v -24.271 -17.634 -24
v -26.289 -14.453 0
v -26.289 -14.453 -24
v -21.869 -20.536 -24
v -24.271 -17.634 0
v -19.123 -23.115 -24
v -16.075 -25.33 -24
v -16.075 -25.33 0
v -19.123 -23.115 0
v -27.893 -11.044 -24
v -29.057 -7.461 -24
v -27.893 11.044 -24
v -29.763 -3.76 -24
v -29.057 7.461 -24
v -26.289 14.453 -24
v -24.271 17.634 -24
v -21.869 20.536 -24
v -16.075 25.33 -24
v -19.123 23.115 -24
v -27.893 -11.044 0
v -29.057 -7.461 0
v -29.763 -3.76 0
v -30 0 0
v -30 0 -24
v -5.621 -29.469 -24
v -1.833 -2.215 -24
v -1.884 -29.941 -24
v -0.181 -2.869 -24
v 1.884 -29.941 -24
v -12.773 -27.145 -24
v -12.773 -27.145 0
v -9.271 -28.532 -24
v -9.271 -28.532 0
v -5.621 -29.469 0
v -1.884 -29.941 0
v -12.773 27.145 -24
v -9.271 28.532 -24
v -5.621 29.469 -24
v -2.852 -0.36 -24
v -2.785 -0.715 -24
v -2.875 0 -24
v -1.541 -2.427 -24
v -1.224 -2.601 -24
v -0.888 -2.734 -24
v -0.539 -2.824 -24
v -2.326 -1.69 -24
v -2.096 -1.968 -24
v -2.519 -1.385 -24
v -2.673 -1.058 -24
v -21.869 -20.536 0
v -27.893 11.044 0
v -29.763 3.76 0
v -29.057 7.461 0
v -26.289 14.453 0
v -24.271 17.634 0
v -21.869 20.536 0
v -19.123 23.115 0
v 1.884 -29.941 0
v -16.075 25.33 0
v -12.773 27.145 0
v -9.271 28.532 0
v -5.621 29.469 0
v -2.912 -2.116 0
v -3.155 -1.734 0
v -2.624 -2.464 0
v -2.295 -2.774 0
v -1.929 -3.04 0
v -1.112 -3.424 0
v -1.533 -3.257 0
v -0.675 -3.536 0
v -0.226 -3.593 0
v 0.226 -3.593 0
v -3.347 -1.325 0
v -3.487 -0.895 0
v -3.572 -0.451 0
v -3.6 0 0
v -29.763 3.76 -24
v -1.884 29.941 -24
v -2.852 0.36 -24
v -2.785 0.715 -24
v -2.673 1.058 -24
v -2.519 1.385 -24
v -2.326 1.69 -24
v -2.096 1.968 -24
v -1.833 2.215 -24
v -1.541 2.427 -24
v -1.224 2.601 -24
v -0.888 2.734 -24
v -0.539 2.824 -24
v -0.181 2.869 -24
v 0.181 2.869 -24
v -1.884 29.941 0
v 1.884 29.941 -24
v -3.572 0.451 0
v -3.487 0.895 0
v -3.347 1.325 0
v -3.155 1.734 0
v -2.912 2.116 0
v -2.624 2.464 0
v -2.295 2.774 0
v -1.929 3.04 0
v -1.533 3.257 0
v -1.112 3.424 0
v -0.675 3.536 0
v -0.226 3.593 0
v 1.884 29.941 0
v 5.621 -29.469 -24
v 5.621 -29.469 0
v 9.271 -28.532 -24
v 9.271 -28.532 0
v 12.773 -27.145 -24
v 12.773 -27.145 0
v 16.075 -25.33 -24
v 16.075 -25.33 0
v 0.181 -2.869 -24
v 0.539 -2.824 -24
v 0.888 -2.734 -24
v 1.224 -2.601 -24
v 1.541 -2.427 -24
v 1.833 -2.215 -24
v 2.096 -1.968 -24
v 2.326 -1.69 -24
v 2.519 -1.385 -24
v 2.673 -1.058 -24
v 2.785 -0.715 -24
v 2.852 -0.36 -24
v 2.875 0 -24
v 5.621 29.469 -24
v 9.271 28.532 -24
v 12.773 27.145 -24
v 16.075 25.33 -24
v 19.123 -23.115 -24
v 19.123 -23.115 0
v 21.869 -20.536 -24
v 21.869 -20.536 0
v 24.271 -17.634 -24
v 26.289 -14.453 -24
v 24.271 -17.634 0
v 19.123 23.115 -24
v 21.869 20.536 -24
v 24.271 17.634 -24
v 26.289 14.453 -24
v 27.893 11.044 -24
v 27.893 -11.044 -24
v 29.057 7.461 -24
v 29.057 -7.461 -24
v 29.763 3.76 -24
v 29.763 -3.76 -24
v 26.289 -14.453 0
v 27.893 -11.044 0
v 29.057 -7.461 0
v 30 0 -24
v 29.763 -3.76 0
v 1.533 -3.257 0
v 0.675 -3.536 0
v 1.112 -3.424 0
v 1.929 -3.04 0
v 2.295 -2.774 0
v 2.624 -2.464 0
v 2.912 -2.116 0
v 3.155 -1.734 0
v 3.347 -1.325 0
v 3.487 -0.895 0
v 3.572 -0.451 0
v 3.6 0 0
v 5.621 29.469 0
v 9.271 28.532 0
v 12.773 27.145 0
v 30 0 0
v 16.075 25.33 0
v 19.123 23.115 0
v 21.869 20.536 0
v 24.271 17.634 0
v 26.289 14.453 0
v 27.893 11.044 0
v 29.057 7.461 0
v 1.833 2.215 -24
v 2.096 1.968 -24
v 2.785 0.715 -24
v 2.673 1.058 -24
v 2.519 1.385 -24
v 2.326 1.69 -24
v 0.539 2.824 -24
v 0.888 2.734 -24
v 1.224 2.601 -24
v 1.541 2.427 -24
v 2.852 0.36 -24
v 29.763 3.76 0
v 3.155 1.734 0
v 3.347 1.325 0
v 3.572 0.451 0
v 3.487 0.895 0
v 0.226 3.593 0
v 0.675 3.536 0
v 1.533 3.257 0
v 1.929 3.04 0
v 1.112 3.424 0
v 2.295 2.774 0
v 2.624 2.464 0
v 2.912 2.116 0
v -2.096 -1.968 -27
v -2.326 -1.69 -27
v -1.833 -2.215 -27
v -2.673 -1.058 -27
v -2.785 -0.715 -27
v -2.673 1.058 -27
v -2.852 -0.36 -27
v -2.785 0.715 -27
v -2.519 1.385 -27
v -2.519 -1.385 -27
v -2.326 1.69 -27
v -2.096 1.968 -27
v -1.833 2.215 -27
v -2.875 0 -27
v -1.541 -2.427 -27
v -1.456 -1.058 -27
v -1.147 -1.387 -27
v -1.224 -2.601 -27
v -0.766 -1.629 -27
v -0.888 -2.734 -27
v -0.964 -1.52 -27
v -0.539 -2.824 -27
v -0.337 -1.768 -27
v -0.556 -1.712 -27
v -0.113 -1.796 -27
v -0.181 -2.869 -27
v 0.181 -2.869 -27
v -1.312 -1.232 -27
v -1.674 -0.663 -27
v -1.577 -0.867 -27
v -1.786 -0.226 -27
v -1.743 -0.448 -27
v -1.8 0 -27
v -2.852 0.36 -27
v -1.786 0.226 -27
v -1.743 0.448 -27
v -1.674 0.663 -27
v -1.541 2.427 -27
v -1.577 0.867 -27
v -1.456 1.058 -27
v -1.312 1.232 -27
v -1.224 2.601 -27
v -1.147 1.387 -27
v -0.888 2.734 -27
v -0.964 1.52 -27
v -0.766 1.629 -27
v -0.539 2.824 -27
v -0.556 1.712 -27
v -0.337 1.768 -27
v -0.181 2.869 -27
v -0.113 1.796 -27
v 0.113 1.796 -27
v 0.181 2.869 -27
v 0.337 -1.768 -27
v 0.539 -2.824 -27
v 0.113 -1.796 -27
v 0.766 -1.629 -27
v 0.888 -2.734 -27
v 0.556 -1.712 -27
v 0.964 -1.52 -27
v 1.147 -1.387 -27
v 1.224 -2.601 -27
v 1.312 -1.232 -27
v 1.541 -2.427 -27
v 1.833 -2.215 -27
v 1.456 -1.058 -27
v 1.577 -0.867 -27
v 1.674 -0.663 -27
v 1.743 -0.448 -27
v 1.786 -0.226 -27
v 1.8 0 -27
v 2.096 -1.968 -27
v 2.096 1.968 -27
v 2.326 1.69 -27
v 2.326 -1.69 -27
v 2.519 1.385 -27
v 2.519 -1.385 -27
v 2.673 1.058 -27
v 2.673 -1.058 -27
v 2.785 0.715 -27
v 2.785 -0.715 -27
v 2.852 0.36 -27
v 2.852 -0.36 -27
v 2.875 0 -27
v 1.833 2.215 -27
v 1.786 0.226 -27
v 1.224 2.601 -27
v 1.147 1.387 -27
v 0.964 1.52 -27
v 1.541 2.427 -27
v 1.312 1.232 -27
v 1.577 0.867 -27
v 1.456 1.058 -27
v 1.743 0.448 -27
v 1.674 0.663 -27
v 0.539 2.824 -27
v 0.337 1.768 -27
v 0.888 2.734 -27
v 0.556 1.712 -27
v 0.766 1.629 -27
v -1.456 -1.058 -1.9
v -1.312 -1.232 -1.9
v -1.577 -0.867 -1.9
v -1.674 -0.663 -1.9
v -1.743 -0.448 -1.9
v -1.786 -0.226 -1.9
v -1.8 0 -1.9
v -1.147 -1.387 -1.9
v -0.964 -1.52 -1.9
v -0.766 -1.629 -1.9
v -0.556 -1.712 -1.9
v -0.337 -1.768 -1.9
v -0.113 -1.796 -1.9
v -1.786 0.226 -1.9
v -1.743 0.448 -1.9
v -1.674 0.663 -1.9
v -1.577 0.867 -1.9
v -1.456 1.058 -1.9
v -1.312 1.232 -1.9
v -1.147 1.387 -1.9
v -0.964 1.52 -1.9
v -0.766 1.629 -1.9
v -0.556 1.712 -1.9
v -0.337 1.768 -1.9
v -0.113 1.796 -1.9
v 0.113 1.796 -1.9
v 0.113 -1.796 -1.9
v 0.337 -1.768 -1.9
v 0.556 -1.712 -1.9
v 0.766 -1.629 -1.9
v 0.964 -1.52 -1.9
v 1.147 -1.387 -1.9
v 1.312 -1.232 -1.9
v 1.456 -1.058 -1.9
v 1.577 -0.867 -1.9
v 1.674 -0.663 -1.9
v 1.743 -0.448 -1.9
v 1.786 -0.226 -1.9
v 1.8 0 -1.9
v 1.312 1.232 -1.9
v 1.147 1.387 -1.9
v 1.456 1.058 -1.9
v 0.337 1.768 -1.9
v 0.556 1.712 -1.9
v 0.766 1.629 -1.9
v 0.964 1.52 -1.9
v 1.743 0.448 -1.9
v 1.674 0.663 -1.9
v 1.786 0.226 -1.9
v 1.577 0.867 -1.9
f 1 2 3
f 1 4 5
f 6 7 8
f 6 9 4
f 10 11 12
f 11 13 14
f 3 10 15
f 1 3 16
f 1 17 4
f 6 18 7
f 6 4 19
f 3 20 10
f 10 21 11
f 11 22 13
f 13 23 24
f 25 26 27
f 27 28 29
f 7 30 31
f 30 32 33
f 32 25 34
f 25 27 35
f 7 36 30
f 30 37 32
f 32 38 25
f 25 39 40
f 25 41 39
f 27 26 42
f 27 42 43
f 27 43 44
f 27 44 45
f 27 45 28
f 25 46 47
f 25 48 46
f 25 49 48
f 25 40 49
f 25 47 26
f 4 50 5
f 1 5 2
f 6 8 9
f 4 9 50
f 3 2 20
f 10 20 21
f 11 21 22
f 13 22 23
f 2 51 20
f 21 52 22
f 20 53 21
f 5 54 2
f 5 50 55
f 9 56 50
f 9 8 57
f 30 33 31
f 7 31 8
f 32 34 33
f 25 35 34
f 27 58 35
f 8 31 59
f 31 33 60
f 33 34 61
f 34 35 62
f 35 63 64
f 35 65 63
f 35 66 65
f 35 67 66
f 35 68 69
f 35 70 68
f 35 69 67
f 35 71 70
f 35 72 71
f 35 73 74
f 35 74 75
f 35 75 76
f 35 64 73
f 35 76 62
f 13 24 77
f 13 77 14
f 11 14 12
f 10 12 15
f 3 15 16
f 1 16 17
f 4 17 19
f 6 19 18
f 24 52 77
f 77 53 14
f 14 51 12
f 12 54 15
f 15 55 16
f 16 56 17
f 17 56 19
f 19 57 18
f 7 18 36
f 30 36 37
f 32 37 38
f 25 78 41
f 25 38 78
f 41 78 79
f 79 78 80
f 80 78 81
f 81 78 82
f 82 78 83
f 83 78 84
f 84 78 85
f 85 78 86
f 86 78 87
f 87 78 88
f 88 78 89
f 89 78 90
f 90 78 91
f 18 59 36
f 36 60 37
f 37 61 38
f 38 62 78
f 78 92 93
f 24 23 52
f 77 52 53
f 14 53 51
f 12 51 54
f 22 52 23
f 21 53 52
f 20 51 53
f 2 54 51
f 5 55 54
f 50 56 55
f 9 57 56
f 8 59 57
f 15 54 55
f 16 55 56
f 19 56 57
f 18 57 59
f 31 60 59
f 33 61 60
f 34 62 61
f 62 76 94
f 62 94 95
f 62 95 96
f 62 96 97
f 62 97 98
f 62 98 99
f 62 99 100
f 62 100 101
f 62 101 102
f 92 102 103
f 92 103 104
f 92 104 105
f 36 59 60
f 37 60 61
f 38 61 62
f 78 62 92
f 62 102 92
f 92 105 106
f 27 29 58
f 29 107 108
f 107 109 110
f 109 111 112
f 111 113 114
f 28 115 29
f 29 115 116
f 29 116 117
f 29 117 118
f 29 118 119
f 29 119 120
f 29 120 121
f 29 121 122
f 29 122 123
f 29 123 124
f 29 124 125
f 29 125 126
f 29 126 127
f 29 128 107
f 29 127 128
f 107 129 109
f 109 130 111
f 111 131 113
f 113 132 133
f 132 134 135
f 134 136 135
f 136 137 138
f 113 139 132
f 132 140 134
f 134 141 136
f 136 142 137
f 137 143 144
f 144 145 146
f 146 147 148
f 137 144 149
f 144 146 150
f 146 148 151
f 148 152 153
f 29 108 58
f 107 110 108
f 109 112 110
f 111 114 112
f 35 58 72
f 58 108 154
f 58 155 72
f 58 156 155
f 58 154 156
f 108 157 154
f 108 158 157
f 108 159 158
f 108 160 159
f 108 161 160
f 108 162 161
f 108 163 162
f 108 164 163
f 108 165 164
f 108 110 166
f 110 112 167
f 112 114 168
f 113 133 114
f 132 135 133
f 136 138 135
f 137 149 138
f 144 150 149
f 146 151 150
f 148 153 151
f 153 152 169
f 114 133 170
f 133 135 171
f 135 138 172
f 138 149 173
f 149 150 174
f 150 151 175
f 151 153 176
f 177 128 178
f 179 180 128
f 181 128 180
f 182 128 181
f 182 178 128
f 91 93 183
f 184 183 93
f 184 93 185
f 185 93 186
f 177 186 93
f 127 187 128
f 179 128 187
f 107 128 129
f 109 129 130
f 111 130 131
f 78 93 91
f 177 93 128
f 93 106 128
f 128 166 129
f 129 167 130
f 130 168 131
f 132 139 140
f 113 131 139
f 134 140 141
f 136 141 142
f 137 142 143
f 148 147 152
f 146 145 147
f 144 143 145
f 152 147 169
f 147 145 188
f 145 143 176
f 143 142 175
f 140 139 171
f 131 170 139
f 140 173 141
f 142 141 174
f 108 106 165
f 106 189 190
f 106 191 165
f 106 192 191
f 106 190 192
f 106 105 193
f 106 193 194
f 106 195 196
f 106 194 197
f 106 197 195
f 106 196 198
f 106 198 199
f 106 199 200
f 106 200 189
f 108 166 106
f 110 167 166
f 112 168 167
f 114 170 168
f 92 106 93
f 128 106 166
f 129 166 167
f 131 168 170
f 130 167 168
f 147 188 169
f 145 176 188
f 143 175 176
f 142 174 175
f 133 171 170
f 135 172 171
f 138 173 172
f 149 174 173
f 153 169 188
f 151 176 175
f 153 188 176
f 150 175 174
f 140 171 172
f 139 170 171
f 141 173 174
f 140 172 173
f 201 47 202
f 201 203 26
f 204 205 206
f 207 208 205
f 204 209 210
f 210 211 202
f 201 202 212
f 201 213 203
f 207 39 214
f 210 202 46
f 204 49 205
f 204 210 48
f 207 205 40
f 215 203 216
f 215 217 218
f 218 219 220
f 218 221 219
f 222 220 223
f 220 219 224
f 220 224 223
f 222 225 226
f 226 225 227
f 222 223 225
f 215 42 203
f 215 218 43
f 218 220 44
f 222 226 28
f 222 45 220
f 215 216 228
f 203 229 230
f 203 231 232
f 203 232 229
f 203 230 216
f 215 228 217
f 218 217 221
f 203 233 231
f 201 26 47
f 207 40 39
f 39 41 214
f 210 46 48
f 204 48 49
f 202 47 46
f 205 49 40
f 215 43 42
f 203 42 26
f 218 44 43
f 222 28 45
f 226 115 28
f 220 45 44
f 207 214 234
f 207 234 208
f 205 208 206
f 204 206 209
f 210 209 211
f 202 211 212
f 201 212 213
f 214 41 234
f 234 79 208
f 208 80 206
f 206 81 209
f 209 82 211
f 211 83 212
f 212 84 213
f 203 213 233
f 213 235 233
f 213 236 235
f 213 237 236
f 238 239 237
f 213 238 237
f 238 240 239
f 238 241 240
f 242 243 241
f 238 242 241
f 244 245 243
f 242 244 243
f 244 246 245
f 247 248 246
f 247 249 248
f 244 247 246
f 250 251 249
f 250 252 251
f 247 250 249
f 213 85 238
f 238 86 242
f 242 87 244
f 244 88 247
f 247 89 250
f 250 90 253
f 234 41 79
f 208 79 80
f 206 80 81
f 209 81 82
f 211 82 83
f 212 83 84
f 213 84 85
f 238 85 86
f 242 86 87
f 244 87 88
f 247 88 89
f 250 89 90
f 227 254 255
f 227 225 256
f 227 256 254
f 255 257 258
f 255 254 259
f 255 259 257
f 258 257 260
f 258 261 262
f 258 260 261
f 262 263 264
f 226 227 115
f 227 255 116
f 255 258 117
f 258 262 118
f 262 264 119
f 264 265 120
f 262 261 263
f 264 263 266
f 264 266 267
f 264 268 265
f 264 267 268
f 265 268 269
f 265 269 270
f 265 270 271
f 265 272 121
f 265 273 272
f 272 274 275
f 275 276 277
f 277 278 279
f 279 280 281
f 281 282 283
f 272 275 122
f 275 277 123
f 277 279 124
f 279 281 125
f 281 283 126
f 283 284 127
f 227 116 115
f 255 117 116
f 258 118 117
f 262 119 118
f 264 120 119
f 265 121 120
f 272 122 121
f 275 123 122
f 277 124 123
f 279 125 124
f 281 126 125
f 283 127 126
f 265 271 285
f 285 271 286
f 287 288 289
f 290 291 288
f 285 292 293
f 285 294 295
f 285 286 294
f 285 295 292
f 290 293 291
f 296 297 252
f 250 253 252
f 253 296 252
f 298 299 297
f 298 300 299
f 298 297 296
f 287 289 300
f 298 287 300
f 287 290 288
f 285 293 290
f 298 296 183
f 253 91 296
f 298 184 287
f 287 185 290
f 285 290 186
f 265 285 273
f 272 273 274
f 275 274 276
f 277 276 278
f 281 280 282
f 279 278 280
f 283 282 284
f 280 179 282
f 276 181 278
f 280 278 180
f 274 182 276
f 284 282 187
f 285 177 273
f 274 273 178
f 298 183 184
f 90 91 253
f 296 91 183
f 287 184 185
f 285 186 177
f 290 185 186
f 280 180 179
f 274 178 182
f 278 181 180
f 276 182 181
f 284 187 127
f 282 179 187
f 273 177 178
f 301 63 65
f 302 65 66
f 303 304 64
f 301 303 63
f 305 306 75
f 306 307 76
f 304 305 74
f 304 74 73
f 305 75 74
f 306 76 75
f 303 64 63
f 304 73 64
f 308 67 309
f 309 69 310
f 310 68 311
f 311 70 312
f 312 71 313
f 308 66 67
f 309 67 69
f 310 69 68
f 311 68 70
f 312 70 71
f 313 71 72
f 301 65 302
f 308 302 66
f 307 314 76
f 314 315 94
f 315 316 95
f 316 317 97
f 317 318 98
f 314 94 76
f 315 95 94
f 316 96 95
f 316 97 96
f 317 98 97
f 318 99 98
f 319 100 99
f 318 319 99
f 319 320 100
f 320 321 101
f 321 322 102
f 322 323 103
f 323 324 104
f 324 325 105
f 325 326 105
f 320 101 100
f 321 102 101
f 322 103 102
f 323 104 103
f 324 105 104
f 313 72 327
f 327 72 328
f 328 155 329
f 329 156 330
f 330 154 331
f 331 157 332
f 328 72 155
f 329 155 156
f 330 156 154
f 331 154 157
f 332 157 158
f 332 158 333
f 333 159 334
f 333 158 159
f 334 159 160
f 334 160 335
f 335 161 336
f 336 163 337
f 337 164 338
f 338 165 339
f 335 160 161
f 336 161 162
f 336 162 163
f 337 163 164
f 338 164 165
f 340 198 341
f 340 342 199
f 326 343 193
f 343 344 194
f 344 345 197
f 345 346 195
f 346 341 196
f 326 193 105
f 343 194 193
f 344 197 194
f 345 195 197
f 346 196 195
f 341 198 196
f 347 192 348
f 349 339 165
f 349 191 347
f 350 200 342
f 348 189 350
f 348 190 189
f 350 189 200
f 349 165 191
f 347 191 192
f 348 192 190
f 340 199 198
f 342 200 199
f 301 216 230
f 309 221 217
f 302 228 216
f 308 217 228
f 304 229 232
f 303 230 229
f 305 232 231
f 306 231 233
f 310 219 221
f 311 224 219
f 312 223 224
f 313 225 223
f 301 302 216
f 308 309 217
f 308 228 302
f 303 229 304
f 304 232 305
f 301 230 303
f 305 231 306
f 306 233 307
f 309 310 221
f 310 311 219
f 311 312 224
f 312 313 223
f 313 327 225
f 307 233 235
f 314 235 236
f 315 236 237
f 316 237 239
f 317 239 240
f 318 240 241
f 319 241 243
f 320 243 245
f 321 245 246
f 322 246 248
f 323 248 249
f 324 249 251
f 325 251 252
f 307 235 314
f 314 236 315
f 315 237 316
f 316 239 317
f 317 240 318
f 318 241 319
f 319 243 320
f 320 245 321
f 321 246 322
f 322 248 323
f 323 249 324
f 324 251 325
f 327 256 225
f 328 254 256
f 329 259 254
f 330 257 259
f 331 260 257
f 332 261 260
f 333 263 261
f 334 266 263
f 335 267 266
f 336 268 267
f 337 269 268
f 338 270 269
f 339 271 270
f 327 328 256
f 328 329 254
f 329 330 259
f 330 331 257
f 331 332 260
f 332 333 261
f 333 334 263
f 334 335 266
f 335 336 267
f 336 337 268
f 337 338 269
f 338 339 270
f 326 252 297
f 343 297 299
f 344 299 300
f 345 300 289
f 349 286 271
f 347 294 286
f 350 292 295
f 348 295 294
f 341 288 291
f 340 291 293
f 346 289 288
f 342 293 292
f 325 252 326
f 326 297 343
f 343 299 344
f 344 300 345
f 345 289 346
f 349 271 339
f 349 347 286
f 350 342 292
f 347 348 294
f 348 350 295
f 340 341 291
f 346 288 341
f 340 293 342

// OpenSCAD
$fn = 50;

difference() {
	union() {
		translate(v = [0, 0, -24.0]) {
			cylinder(h = 24, r = 30.0);
		}
		#translate(v = [0, 0, -27.0]) {
			cylinder(h = 27, r = 2.875);
		}
	}
	union() {
		translate(v = [0, 0, 0]) {
			rotate(a = [0, 0, 0]) {
				difference() {
					union() {
						translate(v = [0, 0, -27.0]) {
							cylinder(h = 27, r = 1.5);
						}
						translate(v = [0, 0, -1.9]) {
							cylinder(h = 1.9, r1 = 1.8, r2 = 3.6);
						}
						translate(v = [0, 0, -27.0]) {
							cylinder(h = 27, r = 1.8);
						}
						translate(v = [0, 0, -27.0]) {
							cylinder(h = 27, r = 1.5);
						}
					}
					union();
				}
			}
		}
	}
}
